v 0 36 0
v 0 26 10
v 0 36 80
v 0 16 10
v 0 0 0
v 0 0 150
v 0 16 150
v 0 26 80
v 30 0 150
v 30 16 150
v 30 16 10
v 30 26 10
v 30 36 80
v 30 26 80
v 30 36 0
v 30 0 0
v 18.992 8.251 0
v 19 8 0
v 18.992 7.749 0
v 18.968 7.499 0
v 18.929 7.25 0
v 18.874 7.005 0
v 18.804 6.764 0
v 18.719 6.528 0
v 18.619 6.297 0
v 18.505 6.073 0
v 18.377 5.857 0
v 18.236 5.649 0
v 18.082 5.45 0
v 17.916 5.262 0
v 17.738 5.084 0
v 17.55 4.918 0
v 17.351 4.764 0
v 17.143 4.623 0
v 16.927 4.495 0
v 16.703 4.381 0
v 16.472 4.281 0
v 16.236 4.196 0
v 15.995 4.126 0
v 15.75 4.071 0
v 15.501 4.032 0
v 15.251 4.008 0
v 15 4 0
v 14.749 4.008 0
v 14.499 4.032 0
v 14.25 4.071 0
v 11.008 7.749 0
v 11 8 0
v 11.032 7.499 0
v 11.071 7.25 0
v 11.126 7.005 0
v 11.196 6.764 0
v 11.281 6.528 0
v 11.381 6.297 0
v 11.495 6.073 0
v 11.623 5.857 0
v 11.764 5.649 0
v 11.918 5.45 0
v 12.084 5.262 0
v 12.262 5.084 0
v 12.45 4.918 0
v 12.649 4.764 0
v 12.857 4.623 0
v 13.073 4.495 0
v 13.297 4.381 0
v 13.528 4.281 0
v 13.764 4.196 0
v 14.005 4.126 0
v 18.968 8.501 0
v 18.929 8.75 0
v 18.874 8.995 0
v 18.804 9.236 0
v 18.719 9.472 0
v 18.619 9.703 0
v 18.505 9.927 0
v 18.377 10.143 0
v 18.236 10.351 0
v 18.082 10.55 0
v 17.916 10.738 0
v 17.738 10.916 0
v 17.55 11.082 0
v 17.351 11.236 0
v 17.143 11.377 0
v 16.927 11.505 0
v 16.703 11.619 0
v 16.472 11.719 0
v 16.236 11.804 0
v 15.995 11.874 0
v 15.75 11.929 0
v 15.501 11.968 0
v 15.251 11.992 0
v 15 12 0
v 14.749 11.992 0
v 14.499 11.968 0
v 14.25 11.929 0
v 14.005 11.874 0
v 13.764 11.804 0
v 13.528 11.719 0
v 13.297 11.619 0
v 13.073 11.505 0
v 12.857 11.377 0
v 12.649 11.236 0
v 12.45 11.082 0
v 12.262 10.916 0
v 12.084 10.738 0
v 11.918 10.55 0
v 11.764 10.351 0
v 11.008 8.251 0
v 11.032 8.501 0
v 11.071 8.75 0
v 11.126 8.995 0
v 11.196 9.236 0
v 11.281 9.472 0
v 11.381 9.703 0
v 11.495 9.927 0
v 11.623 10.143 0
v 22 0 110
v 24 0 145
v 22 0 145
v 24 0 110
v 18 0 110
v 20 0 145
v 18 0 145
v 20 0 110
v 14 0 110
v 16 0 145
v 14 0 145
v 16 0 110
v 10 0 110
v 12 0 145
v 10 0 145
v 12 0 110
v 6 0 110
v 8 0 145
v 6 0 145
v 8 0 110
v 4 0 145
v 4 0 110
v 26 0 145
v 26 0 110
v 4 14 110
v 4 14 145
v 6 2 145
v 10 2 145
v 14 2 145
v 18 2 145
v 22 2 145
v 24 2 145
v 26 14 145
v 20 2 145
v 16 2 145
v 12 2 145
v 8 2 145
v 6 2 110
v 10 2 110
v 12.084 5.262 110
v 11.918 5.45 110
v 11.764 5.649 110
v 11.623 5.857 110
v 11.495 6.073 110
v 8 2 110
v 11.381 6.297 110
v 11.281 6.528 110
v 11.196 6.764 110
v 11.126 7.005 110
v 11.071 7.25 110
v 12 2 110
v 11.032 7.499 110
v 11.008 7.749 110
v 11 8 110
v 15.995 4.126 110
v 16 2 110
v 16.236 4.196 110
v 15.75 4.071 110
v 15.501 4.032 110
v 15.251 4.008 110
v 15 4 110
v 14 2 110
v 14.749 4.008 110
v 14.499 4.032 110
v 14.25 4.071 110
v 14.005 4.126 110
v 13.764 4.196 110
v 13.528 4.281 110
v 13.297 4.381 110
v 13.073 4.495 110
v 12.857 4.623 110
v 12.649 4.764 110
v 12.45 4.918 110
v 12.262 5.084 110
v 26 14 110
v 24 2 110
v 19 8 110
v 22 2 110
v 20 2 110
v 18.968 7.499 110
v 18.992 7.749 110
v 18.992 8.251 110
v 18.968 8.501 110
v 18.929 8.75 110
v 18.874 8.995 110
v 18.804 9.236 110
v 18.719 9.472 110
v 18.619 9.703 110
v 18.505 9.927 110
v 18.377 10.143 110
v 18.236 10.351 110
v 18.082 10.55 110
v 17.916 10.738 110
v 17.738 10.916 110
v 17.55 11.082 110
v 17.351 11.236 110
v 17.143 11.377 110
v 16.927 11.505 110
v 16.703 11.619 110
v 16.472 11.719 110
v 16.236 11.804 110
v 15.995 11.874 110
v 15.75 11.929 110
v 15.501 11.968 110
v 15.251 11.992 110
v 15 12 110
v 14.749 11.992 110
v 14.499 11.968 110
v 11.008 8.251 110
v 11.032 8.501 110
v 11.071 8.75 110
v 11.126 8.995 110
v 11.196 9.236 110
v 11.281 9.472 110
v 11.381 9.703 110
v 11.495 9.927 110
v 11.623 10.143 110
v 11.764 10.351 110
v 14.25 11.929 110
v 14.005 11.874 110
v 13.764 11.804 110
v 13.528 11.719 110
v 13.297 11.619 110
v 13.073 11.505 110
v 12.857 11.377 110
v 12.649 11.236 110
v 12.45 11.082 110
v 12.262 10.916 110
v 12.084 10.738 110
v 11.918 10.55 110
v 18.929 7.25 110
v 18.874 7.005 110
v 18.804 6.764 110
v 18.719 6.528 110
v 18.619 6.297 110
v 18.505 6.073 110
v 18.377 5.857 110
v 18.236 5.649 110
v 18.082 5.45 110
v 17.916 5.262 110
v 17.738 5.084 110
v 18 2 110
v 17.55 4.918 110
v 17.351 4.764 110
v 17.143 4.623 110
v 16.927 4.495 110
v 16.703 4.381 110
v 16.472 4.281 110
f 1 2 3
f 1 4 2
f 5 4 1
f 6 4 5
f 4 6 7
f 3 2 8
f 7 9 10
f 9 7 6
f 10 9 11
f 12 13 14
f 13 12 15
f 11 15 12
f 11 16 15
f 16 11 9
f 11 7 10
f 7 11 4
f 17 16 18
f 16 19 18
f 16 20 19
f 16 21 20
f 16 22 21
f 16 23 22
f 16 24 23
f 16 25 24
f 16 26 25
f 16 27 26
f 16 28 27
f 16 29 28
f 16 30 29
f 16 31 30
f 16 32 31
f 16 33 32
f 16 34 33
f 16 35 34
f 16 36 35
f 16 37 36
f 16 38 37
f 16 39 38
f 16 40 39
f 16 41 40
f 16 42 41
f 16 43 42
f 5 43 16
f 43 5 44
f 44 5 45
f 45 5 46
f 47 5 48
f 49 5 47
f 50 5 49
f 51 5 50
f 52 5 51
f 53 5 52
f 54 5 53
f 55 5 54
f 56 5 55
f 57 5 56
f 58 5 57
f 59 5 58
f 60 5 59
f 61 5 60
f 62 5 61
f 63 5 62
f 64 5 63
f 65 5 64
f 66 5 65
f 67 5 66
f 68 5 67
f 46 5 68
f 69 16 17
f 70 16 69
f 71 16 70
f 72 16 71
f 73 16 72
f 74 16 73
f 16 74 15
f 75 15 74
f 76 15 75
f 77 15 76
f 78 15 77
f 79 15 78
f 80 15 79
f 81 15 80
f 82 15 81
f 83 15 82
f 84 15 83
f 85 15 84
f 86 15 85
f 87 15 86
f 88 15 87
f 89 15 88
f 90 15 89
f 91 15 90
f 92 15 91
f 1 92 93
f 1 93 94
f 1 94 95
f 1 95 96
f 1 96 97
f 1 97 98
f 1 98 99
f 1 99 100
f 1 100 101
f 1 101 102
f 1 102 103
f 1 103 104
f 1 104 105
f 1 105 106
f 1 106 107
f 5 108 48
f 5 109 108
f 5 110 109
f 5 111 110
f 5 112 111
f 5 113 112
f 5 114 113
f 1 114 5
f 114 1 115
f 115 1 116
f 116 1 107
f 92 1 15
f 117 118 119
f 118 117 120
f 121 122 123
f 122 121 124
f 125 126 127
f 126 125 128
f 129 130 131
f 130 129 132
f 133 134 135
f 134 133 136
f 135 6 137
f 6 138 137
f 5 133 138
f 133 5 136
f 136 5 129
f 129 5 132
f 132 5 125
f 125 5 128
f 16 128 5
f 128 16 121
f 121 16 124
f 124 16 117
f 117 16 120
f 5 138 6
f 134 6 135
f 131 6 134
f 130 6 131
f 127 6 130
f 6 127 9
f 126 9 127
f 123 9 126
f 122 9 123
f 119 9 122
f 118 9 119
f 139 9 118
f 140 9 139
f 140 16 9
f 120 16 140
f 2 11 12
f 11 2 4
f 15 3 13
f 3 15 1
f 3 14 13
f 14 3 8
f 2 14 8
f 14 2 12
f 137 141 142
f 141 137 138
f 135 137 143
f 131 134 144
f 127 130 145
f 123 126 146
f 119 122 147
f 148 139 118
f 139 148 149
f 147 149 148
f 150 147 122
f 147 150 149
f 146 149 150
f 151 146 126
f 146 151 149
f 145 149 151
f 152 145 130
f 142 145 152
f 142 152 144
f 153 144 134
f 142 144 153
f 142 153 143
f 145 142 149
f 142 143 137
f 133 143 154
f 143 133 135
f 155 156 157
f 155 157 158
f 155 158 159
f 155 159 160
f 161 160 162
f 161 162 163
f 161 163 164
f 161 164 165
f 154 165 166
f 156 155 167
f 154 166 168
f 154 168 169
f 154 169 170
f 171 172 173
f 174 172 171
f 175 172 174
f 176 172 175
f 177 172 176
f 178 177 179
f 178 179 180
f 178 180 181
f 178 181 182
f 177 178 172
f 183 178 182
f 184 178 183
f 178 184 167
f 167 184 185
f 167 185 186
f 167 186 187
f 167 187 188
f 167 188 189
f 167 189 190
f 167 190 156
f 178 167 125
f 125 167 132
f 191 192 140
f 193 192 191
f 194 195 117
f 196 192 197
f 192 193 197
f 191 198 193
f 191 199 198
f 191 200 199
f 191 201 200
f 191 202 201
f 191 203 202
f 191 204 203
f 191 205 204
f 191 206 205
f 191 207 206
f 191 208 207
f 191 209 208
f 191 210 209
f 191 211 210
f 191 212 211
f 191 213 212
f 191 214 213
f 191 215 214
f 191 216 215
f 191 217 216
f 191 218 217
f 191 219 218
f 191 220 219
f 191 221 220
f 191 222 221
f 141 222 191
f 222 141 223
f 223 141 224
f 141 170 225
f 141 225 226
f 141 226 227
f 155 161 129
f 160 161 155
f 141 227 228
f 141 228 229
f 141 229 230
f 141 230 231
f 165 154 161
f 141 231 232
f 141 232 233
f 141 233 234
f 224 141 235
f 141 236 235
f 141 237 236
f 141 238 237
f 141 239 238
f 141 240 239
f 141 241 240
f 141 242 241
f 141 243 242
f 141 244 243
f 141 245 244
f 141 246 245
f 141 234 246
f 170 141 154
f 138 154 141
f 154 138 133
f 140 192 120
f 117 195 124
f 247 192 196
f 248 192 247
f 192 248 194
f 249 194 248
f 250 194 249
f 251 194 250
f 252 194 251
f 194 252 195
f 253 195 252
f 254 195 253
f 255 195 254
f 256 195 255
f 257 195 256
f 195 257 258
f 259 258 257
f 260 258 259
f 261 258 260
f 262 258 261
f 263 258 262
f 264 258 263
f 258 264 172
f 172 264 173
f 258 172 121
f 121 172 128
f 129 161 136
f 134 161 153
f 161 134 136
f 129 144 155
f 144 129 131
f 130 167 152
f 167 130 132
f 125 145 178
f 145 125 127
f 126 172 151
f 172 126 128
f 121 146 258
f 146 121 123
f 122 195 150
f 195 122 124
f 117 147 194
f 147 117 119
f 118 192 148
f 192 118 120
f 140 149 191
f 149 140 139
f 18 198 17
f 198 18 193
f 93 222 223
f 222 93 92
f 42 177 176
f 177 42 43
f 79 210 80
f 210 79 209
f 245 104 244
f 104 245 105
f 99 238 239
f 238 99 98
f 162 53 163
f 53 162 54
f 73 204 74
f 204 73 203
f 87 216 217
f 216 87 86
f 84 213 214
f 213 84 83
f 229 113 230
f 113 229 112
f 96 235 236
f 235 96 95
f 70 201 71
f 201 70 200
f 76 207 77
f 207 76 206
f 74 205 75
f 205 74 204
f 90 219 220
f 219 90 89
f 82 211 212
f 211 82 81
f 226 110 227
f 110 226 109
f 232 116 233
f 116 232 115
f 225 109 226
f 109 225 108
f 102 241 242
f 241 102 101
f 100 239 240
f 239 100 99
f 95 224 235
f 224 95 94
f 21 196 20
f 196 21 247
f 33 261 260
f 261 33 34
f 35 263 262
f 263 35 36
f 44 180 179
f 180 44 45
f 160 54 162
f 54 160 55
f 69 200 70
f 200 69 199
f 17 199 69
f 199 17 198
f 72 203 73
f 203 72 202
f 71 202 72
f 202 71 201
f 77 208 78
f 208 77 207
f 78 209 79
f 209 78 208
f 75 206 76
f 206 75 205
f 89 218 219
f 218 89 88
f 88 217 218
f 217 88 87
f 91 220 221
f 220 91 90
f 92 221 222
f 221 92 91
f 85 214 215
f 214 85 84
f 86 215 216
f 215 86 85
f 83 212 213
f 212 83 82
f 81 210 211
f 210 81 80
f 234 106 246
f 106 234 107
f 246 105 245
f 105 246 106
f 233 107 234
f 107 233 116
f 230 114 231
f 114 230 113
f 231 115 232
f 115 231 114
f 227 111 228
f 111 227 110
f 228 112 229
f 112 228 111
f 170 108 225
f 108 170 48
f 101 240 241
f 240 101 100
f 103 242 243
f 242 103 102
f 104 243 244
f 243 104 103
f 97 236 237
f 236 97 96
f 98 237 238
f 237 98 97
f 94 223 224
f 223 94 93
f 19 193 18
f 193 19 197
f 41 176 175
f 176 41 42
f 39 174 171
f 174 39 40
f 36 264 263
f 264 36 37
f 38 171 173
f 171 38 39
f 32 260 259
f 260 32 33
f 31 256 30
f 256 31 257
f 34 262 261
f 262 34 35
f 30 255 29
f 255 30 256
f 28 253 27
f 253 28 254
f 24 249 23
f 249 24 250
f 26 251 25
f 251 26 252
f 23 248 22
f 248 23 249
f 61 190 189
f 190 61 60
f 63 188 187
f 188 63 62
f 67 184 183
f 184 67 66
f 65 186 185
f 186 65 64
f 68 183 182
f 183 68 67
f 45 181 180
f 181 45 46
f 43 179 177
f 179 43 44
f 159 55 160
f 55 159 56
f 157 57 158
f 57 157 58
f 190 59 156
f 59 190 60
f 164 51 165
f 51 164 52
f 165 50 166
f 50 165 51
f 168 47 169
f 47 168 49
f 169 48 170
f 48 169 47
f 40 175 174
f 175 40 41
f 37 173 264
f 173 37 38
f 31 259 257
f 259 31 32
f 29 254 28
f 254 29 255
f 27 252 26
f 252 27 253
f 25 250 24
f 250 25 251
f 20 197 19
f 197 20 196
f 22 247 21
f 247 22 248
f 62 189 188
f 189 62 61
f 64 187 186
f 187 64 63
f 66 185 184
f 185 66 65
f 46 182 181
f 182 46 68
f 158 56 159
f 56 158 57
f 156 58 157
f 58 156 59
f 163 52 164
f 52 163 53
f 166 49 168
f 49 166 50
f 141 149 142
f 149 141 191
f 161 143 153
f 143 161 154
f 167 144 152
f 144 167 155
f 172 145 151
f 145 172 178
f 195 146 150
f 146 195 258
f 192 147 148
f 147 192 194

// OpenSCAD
$fn=100;


difference() {
    union() {
        cube([30,16,150]);
        translate([0,0,0])cube([30,20+16,10]);
        translate([0,10+16,0])cube([30,10,80]);
    }
    
    
   // translate([11,4,10])cube([8,8,100]);
    translate([15,8,-1])cylinder(d=8,h=130);
    
    translate([4,2,110])cube([30-8,12,35]);
    
    for (i = [0:5]) {
        
        translate([4+4*i,-2,110])cube([2,12,35]);
        
    }
    
}
//translate([10,0,0])cube([10,50,10]);
